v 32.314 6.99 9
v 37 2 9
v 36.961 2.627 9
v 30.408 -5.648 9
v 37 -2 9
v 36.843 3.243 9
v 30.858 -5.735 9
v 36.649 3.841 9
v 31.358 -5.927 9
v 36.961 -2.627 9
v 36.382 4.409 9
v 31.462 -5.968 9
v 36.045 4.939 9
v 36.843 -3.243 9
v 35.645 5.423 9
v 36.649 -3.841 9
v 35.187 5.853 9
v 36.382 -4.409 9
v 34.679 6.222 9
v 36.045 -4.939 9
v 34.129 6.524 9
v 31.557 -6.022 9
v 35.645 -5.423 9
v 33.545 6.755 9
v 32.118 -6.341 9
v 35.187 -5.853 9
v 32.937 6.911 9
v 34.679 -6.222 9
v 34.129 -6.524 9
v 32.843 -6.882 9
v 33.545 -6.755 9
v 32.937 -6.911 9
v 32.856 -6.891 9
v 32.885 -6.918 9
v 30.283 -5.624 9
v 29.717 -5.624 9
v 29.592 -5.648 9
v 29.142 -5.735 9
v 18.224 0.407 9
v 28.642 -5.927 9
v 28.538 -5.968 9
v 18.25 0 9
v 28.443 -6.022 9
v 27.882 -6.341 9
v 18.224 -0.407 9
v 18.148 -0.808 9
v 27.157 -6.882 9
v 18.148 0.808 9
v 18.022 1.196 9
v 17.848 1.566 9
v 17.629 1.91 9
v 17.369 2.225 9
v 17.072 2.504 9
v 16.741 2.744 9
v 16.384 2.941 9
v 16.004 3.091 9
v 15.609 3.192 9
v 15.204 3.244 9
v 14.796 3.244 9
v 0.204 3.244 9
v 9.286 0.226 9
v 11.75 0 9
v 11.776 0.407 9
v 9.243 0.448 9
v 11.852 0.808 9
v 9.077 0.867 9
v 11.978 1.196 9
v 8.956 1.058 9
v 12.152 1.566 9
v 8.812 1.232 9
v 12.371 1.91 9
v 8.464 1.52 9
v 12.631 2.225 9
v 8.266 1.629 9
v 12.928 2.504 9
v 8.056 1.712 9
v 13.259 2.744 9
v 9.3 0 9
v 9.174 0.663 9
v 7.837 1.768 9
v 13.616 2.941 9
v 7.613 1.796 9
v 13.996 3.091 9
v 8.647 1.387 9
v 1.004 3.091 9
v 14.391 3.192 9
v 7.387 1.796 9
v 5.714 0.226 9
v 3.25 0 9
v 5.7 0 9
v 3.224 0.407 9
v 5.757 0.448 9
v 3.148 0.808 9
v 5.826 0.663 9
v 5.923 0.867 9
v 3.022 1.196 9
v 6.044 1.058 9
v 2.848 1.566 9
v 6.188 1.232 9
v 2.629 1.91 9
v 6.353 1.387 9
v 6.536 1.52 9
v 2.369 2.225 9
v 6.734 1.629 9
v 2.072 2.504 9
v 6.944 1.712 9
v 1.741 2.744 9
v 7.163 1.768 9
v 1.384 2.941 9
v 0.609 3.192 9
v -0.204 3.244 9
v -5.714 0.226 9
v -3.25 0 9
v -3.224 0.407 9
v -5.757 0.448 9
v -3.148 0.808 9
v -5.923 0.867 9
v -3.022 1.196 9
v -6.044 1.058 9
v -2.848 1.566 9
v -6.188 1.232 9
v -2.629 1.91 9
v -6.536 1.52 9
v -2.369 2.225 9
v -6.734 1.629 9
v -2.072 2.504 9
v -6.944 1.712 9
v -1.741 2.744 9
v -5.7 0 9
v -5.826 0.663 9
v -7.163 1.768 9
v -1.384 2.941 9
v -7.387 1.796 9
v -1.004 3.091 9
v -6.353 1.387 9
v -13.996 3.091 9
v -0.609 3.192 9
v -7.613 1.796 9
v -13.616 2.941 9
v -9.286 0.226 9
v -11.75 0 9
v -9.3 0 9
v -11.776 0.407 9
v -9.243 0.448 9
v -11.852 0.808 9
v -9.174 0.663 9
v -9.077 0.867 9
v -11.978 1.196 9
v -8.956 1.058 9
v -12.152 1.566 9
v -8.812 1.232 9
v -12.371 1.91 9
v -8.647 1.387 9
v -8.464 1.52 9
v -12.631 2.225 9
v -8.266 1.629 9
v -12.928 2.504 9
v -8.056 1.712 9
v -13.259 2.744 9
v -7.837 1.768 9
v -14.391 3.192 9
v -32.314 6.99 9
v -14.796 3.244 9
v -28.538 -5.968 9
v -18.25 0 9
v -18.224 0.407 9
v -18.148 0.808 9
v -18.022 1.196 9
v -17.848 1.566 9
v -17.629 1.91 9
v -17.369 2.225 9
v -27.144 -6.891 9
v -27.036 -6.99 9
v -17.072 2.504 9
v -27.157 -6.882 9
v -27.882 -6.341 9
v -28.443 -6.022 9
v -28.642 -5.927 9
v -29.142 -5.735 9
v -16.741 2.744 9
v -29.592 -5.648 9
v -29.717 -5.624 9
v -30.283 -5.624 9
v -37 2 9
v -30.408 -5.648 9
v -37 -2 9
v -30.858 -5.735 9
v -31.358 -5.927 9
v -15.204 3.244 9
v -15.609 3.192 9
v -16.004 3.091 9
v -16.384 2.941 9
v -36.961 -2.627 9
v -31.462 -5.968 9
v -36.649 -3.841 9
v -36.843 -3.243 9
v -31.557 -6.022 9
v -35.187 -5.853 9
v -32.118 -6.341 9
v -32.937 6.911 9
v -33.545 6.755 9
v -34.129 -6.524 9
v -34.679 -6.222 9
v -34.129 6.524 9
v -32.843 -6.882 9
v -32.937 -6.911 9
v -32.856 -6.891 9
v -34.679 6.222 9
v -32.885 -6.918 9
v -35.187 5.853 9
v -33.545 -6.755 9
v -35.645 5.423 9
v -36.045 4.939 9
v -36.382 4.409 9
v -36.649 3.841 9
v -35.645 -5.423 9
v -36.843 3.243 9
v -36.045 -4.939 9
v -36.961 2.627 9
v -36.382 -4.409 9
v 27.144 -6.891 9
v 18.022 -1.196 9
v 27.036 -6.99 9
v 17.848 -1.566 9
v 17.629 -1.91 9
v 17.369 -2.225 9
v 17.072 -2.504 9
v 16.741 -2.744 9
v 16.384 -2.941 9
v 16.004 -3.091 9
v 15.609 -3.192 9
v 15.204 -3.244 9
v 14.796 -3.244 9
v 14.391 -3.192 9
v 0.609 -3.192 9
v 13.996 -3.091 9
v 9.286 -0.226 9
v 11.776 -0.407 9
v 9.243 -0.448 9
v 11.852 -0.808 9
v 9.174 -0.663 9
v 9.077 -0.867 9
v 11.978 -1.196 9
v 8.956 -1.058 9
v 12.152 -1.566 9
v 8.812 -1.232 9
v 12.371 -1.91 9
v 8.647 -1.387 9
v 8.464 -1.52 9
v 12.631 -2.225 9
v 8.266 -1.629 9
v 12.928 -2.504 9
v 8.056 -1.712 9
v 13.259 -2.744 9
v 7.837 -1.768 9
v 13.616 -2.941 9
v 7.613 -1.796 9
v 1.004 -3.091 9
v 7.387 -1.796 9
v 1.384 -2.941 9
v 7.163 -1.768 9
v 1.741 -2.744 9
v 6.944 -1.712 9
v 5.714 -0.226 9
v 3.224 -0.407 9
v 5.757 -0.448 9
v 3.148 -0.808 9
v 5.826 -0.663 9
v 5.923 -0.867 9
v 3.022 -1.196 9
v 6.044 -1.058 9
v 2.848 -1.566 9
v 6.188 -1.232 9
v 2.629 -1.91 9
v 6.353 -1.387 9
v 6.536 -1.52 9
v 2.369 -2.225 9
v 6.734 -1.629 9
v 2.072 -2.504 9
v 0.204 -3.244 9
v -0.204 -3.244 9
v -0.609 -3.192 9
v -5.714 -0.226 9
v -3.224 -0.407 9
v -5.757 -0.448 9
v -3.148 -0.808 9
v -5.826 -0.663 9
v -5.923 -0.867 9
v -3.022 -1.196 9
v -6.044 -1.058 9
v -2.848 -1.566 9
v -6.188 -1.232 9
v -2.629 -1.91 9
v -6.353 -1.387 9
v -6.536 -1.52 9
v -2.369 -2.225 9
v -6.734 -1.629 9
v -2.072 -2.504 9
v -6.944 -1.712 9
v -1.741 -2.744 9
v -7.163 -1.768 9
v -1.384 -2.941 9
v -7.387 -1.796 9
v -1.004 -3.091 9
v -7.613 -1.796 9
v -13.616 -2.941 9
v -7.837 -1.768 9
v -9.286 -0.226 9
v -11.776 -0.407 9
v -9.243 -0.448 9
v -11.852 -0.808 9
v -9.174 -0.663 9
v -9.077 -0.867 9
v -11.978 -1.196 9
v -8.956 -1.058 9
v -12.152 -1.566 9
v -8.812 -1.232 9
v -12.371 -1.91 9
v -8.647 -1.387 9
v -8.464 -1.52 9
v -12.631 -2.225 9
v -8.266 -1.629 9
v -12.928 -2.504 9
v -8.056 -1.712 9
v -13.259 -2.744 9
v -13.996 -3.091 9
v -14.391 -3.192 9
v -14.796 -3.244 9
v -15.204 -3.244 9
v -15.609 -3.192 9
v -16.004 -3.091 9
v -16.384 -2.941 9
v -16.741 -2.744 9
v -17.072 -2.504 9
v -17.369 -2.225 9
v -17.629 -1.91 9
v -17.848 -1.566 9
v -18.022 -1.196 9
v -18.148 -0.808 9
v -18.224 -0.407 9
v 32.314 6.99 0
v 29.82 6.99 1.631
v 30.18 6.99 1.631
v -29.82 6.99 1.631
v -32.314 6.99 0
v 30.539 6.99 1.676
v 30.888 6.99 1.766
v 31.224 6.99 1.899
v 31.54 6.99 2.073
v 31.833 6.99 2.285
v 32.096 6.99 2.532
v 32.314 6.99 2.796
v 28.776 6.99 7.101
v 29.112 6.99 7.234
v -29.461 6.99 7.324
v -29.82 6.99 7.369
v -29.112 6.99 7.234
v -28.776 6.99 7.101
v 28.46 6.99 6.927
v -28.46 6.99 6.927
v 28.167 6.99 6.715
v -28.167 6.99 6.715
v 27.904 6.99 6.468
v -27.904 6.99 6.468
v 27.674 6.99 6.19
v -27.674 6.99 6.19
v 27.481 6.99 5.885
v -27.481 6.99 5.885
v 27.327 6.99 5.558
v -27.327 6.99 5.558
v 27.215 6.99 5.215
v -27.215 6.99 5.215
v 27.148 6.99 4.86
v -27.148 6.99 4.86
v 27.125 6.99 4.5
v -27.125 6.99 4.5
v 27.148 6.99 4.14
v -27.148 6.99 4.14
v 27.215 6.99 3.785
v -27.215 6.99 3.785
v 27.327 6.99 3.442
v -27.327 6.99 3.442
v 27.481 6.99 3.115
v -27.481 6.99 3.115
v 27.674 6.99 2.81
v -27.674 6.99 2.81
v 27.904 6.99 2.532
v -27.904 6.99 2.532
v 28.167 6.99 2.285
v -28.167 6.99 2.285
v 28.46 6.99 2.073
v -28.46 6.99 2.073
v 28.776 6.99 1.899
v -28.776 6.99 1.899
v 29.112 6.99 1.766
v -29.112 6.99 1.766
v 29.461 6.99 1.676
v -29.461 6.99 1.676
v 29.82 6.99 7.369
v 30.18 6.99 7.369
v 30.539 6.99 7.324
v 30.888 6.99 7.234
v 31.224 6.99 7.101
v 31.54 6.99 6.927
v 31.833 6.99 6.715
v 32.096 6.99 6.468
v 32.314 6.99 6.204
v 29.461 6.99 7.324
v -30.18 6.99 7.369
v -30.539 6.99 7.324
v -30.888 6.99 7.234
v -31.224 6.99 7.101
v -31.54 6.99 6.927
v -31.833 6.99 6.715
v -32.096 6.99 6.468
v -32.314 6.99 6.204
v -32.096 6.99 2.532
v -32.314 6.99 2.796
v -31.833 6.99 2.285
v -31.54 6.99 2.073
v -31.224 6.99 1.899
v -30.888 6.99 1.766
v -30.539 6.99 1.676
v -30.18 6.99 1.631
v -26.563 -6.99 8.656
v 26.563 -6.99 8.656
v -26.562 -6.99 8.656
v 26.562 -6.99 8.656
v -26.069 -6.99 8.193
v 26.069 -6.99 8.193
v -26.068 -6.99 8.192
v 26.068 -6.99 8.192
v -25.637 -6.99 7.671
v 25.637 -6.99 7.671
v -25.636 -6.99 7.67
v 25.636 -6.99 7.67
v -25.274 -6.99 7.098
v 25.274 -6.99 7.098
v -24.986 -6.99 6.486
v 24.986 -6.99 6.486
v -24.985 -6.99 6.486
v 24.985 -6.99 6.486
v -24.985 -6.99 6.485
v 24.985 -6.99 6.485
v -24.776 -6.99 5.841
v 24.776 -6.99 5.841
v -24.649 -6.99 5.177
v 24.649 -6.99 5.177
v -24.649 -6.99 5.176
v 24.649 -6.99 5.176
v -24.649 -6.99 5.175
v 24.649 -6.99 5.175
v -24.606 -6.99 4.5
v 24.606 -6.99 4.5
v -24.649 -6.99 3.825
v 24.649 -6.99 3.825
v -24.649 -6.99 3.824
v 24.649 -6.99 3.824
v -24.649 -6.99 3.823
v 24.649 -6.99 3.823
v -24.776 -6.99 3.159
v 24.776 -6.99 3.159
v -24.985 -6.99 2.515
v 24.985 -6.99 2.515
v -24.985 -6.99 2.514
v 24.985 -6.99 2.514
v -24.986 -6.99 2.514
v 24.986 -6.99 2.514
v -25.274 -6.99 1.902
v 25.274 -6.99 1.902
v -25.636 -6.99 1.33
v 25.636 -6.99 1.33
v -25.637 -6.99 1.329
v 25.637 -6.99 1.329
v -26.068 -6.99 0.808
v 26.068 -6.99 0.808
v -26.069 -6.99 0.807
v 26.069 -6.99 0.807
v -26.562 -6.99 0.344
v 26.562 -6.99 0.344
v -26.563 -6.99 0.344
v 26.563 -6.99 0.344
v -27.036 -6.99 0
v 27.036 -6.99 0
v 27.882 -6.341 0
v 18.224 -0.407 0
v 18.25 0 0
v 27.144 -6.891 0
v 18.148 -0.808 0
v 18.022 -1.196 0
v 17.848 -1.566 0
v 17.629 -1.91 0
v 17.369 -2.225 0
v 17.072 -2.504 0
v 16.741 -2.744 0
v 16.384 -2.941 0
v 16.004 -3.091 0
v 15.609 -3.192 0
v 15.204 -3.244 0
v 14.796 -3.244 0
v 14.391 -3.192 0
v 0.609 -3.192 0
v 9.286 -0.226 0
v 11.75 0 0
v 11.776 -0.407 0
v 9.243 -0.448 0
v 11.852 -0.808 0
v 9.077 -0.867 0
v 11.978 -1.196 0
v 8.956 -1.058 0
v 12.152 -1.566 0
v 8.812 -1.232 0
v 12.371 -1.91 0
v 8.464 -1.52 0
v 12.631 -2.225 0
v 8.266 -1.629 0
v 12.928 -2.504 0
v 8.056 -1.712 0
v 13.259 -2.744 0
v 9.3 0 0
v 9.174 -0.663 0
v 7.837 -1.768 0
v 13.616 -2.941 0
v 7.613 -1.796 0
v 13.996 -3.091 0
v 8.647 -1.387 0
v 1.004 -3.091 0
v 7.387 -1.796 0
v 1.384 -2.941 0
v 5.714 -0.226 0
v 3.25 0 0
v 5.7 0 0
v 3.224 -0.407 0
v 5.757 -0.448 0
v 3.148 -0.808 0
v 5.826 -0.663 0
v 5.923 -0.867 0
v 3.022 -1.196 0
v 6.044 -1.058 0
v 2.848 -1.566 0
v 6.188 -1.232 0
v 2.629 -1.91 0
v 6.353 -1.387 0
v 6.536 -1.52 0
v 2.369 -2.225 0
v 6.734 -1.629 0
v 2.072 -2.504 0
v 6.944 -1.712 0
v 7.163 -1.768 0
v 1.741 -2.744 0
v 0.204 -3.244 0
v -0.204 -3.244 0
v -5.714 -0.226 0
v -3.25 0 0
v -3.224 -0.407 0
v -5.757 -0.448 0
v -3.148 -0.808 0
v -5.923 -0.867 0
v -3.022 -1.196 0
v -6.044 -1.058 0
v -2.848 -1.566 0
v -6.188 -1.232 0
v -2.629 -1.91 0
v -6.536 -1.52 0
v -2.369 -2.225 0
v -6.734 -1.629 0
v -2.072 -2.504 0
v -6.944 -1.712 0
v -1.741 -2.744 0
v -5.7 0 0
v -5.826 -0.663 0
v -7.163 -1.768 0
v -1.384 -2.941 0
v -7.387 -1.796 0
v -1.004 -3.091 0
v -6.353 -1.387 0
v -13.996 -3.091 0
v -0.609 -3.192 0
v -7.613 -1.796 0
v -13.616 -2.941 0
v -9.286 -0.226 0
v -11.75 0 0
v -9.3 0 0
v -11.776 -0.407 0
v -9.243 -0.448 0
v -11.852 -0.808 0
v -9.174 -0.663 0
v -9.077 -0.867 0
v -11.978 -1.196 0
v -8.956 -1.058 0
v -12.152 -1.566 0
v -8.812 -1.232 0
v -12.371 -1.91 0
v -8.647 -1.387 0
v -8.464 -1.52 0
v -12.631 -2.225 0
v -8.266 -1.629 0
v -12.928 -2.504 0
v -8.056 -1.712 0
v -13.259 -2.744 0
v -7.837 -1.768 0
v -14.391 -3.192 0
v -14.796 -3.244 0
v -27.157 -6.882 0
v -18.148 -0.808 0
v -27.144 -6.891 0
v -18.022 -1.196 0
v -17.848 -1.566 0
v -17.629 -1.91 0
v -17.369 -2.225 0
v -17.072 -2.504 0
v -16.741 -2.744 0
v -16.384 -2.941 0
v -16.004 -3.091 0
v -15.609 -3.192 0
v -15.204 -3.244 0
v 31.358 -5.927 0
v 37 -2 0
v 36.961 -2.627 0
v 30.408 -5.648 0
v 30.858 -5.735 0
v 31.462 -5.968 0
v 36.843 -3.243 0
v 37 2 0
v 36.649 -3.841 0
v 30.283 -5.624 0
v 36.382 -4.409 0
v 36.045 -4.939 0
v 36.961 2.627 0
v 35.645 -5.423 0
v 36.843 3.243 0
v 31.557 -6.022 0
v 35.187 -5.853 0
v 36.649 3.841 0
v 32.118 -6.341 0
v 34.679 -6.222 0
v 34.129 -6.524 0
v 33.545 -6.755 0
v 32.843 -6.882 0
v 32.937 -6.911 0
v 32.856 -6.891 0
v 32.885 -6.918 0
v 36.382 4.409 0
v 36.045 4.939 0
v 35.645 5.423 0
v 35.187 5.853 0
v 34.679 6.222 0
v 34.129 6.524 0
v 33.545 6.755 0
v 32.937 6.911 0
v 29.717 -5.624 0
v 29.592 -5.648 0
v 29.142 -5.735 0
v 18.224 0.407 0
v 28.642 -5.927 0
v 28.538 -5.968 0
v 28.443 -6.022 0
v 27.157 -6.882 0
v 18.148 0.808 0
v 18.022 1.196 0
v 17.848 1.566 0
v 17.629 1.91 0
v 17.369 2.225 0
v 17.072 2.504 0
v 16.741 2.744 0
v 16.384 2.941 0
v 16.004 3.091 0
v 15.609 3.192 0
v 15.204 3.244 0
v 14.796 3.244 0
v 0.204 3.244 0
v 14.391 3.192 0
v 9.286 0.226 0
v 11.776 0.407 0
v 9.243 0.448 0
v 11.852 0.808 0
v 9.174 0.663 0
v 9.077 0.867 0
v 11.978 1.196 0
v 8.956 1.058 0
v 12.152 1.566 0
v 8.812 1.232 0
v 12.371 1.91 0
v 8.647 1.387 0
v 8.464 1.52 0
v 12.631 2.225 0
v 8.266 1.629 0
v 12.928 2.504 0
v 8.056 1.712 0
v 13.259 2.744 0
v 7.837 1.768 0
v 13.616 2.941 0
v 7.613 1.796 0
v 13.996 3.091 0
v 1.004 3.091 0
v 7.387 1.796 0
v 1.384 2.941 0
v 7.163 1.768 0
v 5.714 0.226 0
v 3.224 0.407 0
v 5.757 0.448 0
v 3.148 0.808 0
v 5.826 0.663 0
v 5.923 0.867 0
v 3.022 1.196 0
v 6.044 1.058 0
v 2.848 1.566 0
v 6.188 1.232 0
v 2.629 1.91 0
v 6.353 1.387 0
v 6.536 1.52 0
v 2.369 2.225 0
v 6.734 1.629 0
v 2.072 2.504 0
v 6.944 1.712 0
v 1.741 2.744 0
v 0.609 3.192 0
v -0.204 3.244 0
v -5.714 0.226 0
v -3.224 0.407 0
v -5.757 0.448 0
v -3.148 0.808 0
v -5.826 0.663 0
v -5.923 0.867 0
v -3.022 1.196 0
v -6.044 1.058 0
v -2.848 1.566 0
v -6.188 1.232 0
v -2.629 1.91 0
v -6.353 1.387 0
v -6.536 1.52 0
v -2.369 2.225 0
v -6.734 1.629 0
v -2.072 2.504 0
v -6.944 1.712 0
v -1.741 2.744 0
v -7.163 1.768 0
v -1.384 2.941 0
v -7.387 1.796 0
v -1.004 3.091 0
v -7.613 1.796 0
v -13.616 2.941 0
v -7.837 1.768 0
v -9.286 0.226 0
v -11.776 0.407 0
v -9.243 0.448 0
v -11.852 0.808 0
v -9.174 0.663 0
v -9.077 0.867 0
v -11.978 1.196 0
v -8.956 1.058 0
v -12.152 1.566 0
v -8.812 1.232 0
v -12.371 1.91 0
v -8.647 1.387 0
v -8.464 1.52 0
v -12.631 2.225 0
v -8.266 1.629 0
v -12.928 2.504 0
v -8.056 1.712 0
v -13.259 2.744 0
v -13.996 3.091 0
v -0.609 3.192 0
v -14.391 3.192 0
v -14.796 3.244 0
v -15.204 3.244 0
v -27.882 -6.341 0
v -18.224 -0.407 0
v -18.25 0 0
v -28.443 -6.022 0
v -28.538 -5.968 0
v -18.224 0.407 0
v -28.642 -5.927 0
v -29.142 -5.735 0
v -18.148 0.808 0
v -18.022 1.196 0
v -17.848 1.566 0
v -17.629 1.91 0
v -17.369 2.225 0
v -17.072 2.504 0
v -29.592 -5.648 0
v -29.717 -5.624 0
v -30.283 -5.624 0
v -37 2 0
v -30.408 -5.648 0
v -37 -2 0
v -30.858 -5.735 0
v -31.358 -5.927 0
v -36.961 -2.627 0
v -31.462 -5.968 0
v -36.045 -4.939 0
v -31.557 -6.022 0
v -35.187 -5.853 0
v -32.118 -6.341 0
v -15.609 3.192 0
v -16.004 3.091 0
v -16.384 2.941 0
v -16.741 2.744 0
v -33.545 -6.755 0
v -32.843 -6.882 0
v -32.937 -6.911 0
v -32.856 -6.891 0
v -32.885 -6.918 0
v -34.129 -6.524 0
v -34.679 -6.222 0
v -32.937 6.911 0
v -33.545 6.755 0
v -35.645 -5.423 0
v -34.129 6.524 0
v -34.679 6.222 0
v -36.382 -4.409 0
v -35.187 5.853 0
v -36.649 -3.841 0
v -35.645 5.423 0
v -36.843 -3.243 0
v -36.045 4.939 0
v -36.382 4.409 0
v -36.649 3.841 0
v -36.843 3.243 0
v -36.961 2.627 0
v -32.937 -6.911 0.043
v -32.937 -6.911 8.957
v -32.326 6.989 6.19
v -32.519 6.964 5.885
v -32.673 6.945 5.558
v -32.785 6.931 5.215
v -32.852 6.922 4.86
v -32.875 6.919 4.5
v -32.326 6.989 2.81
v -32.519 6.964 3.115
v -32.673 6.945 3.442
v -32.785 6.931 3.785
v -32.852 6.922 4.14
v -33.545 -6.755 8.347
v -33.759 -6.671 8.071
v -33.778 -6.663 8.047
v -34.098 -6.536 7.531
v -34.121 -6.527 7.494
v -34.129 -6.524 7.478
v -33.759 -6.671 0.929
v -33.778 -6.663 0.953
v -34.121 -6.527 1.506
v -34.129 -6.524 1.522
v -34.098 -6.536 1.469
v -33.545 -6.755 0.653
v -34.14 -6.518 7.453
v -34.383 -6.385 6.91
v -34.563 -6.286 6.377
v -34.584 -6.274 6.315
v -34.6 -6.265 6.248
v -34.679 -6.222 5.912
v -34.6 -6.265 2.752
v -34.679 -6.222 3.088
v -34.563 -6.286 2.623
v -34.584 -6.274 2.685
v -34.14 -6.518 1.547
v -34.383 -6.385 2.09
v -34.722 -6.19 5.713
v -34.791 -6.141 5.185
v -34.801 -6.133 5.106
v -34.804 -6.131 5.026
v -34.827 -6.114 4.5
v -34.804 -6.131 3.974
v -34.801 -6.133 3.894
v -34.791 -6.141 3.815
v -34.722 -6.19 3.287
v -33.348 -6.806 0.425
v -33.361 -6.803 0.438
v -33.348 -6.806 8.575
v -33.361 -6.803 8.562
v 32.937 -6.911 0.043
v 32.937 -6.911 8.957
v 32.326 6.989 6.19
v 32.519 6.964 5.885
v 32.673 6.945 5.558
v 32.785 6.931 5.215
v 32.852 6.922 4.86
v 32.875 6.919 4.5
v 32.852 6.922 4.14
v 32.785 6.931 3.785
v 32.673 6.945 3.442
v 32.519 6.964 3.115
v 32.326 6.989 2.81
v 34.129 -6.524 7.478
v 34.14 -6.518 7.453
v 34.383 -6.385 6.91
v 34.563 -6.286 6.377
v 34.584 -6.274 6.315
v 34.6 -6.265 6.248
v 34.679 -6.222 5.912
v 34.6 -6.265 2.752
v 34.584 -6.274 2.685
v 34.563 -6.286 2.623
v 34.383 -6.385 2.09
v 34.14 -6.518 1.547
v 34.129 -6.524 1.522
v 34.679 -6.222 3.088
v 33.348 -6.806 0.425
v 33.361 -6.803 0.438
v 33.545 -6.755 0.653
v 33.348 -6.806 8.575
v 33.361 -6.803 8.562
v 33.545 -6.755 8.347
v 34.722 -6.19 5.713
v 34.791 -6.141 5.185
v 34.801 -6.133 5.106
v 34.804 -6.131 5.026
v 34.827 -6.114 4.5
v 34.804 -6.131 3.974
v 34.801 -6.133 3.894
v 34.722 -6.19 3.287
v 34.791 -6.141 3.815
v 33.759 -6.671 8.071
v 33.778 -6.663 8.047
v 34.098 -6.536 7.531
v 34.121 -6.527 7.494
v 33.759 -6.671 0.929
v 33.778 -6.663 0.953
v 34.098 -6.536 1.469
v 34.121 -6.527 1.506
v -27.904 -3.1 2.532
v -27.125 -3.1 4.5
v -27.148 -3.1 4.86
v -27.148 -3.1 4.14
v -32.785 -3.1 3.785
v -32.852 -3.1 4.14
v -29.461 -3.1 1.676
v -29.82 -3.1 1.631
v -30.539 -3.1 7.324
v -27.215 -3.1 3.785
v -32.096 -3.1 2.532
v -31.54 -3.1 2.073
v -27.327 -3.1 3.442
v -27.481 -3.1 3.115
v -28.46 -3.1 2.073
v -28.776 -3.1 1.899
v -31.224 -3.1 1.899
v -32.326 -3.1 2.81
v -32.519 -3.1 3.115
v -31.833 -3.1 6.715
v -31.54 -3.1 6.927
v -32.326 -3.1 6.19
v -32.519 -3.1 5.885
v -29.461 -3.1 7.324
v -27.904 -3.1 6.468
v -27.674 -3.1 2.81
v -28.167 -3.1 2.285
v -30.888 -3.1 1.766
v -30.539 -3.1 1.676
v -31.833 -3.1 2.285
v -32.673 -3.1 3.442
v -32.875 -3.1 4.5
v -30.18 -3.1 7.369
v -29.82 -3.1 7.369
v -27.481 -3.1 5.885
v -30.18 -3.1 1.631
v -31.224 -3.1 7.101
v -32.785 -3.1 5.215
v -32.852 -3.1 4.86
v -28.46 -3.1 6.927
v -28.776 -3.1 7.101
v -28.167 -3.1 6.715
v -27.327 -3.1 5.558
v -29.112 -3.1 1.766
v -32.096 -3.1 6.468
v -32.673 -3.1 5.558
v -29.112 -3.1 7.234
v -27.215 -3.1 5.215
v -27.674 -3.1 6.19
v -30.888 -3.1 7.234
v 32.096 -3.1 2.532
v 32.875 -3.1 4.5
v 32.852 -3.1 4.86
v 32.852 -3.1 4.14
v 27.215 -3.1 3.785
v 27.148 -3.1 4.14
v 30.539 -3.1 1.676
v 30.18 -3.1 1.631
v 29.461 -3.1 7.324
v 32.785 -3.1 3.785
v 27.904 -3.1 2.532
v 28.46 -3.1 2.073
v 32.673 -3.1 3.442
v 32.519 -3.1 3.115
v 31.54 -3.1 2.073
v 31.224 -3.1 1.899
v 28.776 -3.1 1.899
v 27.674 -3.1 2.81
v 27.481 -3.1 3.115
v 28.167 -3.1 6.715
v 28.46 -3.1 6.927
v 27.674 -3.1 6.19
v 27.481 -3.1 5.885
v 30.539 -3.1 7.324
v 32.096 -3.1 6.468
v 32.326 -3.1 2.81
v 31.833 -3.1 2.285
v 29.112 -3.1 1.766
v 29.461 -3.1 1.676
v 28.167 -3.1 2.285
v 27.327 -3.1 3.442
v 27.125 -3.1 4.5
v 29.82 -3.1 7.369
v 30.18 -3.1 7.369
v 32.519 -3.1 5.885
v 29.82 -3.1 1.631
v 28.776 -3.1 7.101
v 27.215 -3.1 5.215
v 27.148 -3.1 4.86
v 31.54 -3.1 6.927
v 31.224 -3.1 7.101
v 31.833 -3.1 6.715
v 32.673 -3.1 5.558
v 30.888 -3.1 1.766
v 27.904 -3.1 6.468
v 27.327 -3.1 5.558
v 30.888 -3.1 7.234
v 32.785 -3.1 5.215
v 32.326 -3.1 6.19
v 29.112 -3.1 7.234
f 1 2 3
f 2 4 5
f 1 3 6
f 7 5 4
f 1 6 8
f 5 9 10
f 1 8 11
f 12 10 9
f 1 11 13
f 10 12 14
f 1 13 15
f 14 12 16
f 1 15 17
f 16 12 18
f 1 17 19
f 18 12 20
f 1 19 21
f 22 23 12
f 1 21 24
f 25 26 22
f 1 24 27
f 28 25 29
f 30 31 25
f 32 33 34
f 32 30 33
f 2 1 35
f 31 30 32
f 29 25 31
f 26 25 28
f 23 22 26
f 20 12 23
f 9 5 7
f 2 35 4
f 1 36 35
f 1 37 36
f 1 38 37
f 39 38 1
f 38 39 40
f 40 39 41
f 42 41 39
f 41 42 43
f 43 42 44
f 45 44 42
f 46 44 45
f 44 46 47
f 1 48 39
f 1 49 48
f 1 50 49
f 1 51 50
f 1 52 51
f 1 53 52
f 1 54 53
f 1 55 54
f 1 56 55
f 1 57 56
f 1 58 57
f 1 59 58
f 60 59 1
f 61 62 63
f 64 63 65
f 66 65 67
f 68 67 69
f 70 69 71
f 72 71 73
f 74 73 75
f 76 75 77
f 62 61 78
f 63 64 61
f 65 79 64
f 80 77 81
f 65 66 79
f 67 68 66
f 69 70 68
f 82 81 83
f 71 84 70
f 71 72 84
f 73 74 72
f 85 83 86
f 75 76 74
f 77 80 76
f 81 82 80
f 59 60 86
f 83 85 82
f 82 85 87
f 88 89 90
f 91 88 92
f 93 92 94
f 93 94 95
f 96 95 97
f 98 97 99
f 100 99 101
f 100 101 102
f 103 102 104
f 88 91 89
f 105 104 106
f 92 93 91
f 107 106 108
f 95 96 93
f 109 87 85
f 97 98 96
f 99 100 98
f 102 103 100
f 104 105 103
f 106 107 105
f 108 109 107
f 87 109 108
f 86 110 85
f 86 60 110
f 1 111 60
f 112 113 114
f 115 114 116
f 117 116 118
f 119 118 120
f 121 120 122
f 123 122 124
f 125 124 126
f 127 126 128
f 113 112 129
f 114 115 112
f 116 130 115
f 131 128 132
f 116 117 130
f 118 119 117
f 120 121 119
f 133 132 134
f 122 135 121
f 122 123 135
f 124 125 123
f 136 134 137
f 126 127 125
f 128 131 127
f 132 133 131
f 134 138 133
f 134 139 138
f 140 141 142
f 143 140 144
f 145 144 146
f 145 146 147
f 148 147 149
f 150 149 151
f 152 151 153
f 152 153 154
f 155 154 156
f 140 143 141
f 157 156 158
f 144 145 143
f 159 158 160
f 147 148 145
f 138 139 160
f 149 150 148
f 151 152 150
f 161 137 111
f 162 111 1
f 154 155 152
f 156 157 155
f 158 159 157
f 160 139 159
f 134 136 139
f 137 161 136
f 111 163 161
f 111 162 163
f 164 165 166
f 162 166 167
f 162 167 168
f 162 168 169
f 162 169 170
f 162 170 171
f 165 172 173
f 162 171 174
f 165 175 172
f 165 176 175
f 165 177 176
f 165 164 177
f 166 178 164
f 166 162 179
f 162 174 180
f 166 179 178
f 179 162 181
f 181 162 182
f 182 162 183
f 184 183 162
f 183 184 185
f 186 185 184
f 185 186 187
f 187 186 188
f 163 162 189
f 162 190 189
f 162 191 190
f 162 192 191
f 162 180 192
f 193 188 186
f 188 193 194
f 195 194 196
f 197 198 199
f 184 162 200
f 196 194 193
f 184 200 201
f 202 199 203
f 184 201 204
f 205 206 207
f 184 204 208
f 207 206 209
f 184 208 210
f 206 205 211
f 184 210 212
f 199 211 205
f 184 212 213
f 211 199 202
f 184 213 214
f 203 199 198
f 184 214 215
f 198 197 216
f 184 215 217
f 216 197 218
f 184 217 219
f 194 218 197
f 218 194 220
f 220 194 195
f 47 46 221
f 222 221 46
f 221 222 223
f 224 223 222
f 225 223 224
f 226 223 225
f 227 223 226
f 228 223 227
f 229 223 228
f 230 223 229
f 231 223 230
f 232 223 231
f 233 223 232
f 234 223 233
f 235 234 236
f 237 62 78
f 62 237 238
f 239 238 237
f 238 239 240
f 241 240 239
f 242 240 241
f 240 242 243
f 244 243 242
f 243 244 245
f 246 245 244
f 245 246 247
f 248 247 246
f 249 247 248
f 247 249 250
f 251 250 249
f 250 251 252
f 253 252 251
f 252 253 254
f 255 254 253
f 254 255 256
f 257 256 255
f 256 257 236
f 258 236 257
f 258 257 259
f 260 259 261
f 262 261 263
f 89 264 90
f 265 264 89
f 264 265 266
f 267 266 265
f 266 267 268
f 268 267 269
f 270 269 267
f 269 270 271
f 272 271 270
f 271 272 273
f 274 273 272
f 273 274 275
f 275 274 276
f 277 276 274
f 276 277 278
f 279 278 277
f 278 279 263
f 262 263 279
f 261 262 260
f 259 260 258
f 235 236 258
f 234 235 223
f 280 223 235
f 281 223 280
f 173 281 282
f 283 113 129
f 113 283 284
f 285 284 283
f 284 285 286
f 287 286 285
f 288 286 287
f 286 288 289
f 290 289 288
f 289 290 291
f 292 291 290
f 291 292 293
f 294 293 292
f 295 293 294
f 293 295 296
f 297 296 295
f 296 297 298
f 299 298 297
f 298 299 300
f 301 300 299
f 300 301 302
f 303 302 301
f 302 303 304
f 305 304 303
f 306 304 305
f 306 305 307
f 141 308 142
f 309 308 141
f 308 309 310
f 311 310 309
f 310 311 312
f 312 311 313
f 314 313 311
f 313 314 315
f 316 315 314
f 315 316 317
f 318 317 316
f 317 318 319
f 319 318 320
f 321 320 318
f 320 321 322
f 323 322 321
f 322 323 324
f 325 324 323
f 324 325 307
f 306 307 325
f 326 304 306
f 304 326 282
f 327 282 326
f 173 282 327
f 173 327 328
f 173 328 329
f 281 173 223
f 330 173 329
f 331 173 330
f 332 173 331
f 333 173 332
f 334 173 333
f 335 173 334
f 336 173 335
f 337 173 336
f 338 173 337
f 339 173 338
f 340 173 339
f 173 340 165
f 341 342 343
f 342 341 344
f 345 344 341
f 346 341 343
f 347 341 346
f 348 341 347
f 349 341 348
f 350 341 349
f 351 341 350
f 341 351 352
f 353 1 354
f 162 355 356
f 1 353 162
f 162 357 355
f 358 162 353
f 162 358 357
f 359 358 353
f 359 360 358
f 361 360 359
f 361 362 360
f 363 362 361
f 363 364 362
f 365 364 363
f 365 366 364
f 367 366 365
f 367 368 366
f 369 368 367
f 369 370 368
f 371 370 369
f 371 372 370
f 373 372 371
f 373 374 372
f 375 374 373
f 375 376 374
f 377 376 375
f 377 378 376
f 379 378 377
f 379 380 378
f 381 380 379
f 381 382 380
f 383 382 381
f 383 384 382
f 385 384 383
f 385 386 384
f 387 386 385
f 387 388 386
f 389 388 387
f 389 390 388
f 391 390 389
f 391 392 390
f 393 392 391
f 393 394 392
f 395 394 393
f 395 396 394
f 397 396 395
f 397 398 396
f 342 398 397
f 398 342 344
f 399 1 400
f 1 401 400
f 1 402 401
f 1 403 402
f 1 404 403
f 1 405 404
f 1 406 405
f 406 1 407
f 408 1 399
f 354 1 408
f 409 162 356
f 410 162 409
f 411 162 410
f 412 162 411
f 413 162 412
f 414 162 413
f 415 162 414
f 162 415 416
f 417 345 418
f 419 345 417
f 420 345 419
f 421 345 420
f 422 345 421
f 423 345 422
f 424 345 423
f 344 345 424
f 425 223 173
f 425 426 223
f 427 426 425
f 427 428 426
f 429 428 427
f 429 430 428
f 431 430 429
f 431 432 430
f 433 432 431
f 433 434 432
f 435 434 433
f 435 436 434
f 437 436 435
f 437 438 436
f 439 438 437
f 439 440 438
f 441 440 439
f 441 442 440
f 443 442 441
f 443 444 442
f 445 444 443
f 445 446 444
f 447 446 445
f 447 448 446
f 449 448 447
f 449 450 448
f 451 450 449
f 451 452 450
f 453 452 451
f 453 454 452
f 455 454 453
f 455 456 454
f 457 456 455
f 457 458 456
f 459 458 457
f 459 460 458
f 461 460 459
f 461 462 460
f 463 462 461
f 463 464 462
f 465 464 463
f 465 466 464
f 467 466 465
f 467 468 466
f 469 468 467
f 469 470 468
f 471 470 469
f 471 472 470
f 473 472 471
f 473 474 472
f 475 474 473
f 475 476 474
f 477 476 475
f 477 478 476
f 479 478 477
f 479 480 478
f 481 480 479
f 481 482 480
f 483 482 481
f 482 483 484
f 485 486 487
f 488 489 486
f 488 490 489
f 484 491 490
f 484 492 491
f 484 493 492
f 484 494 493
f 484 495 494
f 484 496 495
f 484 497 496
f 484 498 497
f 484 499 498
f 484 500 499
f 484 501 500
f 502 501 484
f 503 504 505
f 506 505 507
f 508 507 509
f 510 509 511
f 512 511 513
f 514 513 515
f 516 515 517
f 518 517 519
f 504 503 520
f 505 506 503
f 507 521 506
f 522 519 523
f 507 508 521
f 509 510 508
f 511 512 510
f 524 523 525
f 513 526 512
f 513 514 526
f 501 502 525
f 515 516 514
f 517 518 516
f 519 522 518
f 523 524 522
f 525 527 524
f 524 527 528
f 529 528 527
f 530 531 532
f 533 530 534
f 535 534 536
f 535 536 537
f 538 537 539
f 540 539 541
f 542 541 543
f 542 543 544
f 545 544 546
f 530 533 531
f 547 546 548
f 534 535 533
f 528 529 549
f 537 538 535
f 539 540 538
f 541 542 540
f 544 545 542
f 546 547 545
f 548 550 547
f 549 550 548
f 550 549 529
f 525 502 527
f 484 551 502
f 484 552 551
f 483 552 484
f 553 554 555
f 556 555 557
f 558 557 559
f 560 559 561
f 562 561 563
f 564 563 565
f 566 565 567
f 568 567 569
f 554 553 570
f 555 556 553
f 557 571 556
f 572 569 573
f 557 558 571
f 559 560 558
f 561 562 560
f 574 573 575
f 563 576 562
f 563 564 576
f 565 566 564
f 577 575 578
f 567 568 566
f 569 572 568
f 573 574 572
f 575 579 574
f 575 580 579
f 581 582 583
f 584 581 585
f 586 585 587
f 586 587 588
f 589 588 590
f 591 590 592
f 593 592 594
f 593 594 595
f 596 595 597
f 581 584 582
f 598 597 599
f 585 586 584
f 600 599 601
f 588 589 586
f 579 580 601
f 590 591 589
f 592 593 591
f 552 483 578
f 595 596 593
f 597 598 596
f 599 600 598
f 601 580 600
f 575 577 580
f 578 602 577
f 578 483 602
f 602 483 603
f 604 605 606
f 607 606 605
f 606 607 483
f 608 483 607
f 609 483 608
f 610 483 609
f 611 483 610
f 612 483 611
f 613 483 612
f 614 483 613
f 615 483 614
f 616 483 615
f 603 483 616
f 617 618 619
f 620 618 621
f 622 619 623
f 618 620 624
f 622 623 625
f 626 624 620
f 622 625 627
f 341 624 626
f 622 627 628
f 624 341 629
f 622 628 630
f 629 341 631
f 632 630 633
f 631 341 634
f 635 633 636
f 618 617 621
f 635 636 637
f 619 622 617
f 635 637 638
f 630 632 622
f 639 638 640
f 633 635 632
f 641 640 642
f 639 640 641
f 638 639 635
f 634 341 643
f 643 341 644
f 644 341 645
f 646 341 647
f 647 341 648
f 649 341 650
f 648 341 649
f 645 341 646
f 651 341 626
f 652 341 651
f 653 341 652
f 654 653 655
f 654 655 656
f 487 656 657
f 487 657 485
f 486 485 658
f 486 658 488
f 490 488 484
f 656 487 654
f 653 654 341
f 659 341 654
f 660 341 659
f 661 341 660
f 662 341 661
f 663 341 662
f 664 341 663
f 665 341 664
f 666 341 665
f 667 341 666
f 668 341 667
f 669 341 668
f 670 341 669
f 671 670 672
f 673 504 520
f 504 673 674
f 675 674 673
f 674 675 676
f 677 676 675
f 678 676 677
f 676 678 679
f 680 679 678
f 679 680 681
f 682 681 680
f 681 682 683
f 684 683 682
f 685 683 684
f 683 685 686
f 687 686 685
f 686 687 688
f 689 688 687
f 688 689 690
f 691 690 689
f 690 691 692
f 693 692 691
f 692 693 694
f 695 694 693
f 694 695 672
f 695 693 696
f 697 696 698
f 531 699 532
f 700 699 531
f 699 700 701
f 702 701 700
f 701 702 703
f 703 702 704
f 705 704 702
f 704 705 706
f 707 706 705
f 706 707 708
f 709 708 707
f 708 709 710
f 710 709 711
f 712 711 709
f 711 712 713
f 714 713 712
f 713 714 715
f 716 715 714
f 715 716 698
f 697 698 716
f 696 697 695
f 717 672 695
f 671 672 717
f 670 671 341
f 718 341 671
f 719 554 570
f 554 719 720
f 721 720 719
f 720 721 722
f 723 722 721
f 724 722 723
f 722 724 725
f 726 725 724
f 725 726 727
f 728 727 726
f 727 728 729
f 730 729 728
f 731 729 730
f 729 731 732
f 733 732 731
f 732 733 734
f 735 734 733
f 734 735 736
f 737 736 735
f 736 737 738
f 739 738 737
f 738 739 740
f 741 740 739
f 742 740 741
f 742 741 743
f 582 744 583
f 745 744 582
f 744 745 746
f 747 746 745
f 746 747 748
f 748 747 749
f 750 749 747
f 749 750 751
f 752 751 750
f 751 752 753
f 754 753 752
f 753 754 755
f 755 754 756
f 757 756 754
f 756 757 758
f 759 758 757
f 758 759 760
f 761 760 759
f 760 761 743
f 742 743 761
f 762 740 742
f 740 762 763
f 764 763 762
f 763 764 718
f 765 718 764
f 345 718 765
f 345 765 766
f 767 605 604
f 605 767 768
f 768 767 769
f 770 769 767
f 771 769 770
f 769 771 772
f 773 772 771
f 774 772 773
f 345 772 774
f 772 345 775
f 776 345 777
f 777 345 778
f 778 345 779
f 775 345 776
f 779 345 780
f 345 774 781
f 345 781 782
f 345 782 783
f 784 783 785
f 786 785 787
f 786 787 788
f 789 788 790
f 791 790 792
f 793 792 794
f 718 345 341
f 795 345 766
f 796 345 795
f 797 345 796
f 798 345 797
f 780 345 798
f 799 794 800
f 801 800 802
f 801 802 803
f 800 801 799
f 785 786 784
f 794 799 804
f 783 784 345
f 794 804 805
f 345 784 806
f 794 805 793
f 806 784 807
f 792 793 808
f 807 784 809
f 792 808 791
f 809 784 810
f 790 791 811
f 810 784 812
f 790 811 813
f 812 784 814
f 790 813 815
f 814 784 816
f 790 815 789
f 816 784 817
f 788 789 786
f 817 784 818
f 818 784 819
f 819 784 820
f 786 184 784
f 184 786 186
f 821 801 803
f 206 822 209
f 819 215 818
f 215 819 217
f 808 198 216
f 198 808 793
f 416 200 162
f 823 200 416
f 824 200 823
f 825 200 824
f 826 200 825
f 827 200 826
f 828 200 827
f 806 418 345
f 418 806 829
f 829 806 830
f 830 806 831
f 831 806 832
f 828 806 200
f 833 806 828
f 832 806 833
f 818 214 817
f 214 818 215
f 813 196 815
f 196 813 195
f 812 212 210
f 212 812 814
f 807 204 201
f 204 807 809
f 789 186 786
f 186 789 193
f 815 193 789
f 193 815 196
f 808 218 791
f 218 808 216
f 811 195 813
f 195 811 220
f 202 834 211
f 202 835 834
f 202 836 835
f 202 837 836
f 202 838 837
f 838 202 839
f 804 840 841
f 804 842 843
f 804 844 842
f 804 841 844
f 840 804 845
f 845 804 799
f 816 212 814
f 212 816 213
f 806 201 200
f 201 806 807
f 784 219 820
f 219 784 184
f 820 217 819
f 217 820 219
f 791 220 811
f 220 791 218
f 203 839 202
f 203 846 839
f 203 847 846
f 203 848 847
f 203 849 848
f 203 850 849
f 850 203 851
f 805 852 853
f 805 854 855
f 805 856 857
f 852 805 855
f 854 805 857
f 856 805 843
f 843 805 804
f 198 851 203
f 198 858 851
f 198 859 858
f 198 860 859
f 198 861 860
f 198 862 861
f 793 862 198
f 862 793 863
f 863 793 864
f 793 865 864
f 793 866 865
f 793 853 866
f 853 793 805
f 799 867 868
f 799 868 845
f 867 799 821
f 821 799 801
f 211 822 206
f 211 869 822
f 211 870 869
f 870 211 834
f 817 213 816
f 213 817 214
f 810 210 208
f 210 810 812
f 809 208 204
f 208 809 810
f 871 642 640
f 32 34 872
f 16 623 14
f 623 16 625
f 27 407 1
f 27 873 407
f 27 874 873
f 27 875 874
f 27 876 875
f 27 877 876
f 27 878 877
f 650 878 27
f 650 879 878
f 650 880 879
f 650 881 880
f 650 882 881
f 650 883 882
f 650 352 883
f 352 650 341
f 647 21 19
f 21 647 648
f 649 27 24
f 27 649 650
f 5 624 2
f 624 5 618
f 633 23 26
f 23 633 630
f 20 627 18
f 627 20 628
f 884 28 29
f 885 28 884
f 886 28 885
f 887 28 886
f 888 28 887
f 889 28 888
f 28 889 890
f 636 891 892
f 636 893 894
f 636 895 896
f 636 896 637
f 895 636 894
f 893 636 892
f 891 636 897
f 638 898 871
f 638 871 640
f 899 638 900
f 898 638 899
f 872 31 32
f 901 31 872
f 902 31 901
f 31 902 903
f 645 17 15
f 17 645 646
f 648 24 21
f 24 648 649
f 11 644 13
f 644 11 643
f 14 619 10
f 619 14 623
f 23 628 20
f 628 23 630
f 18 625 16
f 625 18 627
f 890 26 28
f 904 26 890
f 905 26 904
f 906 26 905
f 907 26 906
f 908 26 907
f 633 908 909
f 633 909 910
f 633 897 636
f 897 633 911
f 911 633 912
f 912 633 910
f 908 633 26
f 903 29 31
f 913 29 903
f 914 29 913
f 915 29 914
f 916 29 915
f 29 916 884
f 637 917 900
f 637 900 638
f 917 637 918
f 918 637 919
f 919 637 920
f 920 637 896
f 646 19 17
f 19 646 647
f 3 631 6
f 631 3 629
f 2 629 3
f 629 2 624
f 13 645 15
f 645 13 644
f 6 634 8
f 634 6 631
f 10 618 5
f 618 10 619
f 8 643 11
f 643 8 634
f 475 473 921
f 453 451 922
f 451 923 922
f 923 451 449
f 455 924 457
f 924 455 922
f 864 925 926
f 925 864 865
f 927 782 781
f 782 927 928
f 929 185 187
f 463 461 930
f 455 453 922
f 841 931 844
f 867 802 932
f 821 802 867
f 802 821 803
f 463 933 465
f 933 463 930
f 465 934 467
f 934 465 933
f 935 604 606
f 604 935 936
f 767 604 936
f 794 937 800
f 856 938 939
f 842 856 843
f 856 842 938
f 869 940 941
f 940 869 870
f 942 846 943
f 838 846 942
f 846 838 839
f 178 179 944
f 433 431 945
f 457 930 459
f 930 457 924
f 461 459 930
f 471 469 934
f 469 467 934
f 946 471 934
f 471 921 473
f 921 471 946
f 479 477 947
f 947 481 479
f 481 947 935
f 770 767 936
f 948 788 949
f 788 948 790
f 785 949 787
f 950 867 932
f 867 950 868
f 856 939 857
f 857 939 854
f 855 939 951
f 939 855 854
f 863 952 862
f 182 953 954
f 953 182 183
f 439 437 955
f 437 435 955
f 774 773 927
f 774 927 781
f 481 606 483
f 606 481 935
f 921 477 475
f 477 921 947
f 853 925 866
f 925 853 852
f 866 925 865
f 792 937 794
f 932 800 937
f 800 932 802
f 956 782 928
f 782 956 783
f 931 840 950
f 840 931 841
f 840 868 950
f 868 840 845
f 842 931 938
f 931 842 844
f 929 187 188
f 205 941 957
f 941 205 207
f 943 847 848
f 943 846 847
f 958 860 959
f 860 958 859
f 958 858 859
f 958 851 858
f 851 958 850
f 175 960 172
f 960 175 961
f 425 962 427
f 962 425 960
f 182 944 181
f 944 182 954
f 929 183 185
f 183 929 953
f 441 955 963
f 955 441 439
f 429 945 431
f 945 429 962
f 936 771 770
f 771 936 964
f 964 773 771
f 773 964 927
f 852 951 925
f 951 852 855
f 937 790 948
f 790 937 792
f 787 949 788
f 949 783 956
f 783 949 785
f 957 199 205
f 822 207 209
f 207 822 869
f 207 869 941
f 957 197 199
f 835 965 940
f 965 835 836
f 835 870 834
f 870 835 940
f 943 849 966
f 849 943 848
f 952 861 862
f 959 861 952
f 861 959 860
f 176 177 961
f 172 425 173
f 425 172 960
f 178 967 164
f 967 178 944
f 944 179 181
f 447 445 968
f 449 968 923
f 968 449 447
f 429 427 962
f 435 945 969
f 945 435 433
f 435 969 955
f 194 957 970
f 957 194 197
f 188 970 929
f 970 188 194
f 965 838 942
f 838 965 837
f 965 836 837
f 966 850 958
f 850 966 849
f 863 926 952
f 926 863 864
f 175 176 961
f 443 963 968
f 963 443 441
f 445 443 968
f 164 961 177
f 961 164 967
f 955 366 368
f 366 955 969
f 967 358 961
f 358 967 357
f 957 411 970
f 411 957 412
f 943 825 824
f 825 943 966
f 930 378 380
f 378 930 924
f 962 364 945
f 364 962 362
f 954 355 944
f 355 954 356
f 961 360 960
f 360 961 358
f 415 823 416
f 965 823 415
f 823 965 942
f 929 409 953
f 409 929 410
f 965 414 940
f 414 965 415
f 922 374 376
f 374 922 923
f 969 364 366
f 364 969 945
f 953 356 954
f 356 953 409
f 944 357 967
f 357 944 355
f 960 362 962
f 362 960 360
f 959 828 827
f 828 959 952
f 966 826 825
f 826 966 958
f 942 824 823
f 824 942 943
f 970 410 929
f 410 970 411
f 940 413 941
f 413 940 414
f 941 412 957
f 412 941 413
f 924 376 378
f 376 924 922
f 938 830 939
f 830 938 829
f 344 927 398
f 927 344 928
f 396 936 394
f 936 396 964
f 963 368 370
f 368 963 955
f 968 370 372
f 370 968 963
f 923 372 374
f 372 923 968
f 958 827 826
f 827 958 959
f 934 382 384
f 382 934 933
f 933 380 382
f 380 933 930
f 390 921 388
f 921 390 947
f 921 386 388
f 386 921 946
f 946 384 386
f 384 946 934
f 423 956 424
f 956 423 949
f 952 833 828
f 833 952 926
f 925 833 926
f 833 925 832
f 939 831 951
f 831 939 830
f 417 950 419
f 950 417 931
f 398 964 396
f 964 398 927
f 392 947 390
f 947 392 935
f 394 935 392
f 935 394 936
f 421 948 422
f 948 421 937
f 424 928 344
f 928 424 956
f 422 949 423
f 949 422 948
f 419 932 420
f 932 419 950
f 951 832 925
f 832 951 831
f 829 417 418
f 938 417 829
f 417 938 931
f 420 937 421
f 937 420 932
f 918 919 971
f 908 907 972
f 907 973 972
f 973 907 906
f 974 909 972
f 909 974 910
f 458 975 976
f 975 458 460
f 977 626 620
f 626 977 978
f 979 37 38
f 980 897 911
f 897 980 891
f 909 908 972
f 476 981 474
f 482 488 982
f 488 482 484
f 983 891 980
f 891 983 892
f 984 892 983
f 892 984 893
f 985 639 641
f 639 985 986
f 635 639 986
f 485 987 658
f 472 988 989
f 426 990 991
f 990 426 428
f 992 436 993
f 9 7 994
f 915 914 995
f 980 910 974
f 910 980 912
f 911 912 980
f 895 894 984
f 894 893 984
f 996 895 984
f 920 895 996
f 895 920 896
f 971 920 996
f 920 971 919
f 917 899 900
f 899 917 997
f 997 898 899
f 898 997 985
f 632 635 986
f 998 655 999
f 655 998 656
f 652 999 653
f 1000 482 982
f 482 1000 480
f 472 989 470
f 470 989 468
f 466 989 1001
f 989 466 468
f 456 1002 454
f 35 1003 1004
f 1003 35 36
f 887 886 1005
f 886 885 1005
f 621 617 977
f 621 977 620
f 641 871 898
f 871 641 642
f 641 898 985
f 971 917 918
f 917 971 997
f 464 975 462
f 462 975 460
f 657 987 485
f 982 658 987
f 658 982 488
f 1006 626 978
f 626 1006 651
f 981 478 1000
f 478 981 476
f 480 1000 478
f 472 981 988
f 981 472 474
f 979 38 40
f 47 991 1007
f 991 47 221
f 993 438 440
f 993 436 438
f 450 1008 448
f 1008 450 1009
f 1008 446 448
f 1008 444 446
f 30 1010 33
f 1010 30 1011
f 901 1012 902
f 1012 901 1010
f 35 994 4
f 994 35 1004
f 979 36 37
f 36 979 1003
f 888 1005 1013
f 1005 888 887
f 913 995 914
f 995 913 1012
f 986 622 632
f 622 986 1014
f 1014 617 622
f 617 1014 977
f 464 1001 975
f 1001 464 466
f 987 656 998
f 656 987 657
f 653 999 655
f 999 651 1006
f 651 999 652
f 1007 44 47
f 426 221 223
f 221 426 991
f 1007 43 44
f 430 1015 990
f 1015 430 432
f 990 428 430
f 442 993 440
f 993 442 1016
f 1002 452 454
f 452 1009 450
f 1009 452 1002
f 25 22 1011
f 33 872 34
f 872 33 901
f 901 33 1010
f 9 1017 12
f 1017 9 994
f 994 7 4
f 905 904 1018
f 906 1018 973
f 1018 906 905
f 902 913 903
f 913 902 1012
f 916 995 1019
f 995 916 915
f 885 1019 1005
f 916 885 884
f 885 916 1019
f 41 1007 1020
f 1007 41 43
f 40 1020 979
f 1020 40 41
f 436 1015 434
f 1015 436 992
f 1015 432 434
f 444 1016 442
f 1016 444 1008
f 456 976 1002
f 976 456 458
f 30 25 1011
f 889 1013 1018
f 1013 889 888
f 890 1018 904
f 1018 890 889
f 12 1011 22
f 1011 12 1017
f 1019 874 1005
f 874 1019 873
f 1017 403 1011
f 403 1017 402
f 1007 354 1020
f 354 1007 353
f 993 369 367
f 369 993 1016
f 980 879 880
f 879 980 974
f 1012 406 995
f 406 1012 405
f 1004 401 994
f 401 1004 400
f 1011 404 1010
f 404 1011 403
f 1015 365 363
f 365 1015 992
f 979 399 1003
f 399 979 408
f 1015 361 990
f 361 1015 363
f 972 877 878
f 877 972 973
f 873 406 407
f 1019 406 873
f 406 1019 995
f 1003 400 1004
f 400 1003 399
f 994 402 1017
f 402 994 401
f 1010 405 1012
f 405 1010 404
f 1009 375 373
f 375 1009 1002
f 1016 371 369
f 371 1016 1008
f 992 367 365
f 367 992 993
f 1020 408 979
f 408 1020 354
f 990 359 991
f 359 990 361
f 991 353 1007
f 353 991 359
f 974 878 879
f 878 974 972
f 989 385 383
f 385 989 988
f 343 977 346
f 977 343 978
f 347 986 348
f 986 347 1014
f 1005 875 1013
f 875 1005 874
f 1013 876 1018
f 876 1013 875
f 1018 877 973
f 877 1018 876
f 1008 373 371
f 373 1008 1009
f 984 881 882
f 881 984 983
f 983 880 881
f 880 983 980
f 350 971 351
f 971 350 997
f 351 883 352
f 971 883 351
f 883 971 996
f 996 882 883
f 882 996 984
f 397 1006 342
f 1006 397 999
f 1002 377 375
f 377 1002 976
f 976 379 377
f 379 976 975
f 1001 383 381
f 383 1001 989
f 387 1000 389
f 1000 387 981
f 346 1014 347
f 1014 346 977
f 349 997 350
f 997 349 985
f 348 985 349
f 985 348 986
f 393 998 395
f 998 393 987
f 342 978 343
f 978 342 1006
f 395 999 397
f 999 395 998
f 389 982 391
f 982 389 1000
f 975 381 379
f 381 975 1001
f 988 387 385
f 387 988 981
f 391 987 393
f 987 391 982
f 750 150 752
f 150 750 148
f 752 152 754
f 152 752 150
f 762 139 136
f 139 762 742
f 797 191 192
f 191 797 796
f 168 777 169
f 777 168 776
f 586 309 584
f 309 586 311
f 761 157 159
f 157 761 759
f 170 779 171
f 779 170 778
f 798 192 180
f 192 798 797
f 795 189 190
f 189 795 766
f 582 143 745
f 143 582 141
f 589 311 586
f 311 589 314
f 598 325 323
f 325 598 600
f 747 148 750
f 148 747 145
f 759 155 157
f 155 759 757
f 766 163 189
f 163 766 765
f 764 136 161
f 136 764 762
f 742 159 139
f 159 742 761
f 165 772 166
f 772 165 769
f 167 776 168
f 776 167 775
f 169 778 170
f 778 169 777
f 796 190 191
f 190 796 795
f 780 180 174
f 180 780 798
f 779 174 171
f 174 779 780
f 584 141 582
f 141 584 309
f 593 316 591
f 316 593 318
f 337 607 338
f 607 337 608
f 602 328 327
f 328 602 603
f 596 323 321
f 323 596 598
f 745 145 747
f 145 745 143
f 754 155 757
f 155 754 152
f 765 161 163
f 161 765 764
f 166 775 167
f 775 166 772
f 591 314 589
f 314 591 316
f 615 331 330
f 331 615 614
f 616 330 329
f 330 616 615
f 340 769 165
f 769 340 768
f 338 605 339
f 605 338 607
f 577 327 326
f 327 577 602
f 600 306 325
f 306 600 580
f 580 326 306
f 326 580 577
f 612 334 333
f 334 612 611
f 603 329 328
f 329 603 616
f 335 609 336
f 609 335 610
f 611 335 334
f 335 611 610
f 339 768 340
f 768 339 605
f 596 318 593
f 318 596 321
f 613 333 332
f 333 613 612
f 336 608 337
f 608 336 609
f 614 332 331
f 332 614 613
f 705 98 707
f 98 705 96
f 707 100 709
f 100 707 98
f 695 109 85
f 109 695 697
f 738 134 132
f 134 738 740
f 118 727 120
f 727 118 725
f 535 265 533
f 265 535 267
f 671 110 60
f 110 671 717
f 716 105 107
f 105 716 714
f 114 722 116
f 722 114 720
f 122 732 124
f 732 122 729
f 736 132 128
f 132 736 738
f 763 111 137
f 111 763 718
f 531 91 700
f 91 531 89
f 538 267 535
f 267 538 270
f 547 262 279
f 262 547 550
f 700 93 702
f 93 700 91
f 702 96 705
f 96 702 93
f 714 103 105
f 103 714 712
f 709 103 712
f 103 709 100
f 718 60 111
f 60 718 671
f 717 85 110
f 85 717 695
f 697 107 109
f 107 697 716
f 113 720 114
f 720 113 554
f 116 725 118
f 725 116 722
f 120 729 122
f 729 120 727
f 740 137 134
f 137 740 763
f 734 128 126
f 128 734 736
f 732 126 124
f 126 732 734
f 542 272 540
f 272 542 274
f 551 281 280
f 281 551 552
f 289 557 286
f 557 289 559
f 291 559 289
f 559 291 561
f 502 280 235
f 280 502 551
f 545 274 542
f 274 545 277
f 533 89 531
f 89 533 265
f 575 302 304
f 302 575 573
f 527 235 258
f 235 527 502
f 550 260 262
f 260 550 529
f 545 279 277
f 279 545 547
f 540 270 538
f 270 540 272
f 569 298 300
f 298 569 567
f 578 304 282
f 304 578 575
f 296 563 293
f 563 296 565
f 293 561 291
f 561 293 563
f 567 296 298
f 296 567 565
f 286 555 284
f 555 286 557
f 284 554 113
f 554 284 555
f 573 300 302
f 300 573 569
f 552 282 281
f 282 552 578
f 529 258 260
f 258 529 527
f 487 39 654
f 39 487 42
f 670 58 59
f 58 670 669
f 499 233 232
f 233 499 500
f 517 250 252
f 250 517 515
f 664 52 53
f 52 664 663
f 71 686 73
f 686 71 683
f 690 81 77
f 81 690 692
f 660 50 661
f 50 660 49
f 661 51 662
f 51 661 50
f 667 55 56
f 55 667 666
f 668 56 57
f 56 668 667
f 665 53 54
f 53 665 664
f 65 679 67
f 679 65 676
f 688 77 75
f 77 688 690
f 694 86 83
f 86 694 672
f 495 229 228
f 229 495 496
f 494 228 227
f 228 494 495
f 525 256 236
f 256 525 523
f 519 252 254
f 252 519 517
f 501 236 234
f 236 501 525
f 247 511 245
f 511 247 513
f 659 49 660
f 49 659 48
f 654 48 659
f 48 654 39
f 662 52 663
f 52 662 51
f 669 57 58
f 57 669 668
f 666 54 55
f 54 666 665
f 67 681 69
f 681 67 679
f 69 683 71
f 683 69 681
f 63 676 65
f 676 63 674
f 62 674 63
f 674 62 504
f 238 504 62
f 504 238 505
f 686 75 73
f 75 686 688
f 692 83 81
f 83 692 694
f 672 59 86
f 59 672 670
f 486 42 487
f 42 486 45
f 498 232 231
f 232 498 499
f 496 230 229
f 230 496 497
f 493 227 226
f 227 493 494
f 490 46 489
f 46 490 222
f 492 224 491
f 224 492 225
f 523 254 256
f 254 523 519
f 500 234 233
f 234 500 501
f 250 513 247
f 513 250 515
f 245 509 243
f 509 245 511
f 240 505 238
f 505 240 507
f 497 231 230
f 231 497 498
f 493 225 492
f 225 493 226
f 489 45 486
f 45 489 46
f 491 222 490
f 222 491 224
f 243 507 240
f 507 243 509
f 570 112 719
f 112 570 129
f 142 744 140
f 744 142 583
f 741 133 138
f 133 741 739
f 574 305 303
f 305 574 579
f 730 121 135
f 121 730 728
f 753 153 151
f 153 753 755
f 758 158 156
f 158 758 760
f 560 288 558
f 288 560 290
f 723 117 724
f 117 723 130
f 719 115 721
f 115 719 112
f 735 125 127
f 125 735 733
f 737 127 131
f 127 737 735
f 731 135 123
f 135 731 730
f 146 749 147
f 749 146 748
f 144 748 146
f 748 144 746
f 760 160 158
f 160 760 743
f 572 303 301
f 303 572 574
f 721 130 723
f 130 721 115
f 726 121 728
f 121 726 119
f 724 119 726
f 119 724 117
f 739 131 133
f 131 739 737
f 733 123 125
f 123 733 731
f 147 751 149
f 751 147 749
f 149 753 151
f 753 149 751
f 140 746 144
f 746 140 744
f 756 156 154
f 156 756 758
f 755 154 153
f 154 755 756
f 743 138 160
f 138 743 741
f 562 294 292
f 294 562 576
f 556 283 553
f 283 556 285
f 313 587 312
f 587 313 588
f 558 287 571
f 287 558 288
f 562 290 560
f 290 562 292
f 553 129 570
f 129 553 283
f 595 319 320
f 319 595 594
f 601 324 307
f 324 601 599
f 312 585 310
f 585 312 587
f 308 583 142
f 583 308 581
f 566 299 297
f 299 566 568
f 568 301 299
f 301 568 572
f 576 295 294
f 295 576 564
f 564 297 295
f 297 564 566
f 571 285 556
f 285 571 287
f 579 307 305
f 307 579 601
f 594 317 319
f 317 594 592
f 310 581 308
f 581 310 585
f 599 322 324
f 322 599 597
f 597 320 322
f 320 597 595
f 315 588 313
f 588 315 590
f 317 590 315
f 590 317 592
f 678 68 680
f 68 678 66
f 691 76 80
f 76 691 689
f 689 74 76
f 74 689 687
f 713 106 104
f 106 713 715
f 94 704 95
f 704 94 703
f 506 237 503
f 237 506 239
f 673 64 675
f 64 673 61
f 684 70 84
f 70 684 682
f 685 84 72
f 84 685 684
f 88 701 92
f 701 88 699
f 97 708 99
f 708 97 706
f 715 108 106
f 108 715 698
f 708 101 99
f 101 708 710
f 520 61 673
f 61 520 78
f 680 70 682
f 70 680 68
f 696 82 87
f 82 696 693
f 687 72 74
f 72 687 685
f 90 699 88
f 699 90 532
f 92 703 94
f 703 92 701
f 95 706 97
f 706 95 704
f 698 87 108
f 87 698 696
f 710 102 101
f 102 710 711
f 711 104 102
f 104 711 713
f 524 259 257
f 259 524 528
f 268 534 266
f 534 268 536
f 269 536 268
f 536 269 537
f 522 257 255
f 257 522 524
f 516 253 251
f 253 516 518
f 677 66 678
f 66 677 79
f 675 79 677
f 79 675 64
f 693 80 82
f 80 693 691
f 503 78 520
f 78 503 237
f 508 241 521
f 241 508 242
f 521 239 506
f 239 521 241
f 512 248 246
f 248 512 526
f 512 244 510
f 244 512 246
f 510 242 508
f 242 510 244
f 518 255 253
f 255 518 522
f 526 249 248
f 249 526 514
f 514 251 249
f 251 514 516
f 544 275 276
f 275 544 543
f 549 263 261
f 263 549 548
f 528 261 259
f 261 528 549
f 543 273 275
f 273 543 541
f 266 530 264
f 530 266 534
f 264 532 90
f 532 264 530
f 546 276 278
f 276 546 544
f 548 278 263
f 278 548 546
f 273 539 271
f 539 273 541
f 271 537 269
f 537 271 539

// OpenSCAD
$fn = 50;


difference() {
	union() {
		hull() {
			translate(v = [-17.0000000000, 2.0000000000, 0]) {
				cylinder(h = 9, r = 5);
			}
			translate(v = [17.0000000000, 2.0000000000, 0]) {
				cylinder(h = 9, r = 5);
			}
			translate(v = [-17.0000000000, -2.0000000000, 0]) {
				cylinder(h = 9, r = 5);
			}
			translate(v = [17.0000000000, -2.0000000000, 0]) {
				cylinder(h = 9, r = 5);
			}
		}
		translate(v = [-22.5000000000, 0.0000000000, 0]) {
			hull() {
				translate(v = [-9.5000000000, 2.0000000000, 0]) {
					cylinder(h = 9, r = 5);
				}
				translate(v = [9.5000000000, 2.0000000000, 0]) {
					cylinder(h = 9, r = 5);
				}
				translate(v = [-9.5000000000, -2.0000000000, 0]) {
					cylinder(h = 9, r = 5);
				}
				translate(v = [9.5000000000, -2.0000000000, 0]) {
					cylinder(h = 9, r = 5);
				}
			}
		}
		translate(v = [22.5000000000, 0.0000000000, 0]) {
			hull() {
				translate(v = [-9.5000000000, 2.0000000000, 0]) {
					cylinder(h = 9, r = 5);
				}
				translate(v = [9.5000000000, 2.0000000000, 0]) {
					cylinder(h = 9, r = 5);
				}
				translate(v = [-9.5000000000, -2.0000000000, 0]) {
					cylinder(h = 9, r = 5);
				}
				translate(v = [9.5000000000, -2.0000000000, 0]) {
					cylinder(h = 9, r = 5);
				}
			}
		}
	}
	union() {
		translate(v = [-30.0000000000, -7.0000000000, 4.5000000000]) {
			rotate(a = [90, 0, 0]) {
				difference() {
					union() {
						#translate(v = [0, 0, -14.0000000000]) {
							cylinder(h = 14, r = 2.6000000000);
						}
						#translate(v = [0, 0, -3.9000000000]) {
							cylinder(h = 3.9000000000, r1 = 2.8750000000, r2 = 5.4000000000);
						}
						#translate(v = [0, 0, -14.0000000000]) {
							cylinder(h = 14, r = 2.8750000000);
						}
						#translate(v = [0, 0, -14.0000000000]) {
							cylinder(h = 14, r = 2.6000000000);
						}
					}
					union();
				}
			}
		}
		translate(v = [30.0000000000, -7.0000000000, 4.5000000000]) {
			rotate(a = [90, 0, 0]) {
				difference() {
					union() {
						#translate(v = [0, 0, -14.0000000000]) {
							cylinder(h = 14, r = 2.6000000000);
						}
						#translate(v = [0, 0, -3.9000000000]) {
							cylinder(h = 3.9000000000, r1 = 2.8750000000, r2 = 5.4000000000);
						}
						#translate(v = [0, 0, -14.0000000000]) {
							cylinder(h = 14, r = 2.8750000000);
						}
						#translate(v = [0, 0, -14.0000000000]) {
							cylinder(h = 14, r = 2.6000000000);
						}
					}
					union();
				}
			}
		}
		translate(v = [-15.0000000000, 0.0000000000, 0]) {
			translate(v = [0, 0, -100]) {
				cylinder(h = 200, r = 3.2500000000);
			}
		}
		translate(v = [0, 0, -100]) {
			cylinder(h = 200, r = 3.2500000000);
		}
		translate(v = [15.0000000000, 0.0000000000, 0]) {
			translate(v = [0, 0, -100]) {
				cylinder(h = 200, r = 3.2500000000);
			}
		}
		translate(v = [-15.0000000000, 0.0000000000, 0]) {
			translate(v = [0, 0, -100]) {
				cylinder(h = 200, r = 1.8000000000);
			}
		}
		translate(v = [-7.5000000000, 0.0000000000, 0]) {
			translate(v = [0, 0, -100]) {
				cylinder(h = 200, r = 1.8000000000);
			}
		}
		translate(v = [0, 0, -100]) {
			cylinder(h = 200, r = 1.8000000000);
		}
		translate(v = [7.5000000000, 0.0000000000, 0]) {
			translate(v = [0, 0, -100]) {
				cylinder(h = 200, r = 1.8000000000);
			}
		}
		translate(v = [15.0000000000, 0.0000000000, 0]) {
			translate(v = [0, 0, -100]) {
				cylinder(h = 200, r = 1.8000000000);
			}
		}
	}
}
